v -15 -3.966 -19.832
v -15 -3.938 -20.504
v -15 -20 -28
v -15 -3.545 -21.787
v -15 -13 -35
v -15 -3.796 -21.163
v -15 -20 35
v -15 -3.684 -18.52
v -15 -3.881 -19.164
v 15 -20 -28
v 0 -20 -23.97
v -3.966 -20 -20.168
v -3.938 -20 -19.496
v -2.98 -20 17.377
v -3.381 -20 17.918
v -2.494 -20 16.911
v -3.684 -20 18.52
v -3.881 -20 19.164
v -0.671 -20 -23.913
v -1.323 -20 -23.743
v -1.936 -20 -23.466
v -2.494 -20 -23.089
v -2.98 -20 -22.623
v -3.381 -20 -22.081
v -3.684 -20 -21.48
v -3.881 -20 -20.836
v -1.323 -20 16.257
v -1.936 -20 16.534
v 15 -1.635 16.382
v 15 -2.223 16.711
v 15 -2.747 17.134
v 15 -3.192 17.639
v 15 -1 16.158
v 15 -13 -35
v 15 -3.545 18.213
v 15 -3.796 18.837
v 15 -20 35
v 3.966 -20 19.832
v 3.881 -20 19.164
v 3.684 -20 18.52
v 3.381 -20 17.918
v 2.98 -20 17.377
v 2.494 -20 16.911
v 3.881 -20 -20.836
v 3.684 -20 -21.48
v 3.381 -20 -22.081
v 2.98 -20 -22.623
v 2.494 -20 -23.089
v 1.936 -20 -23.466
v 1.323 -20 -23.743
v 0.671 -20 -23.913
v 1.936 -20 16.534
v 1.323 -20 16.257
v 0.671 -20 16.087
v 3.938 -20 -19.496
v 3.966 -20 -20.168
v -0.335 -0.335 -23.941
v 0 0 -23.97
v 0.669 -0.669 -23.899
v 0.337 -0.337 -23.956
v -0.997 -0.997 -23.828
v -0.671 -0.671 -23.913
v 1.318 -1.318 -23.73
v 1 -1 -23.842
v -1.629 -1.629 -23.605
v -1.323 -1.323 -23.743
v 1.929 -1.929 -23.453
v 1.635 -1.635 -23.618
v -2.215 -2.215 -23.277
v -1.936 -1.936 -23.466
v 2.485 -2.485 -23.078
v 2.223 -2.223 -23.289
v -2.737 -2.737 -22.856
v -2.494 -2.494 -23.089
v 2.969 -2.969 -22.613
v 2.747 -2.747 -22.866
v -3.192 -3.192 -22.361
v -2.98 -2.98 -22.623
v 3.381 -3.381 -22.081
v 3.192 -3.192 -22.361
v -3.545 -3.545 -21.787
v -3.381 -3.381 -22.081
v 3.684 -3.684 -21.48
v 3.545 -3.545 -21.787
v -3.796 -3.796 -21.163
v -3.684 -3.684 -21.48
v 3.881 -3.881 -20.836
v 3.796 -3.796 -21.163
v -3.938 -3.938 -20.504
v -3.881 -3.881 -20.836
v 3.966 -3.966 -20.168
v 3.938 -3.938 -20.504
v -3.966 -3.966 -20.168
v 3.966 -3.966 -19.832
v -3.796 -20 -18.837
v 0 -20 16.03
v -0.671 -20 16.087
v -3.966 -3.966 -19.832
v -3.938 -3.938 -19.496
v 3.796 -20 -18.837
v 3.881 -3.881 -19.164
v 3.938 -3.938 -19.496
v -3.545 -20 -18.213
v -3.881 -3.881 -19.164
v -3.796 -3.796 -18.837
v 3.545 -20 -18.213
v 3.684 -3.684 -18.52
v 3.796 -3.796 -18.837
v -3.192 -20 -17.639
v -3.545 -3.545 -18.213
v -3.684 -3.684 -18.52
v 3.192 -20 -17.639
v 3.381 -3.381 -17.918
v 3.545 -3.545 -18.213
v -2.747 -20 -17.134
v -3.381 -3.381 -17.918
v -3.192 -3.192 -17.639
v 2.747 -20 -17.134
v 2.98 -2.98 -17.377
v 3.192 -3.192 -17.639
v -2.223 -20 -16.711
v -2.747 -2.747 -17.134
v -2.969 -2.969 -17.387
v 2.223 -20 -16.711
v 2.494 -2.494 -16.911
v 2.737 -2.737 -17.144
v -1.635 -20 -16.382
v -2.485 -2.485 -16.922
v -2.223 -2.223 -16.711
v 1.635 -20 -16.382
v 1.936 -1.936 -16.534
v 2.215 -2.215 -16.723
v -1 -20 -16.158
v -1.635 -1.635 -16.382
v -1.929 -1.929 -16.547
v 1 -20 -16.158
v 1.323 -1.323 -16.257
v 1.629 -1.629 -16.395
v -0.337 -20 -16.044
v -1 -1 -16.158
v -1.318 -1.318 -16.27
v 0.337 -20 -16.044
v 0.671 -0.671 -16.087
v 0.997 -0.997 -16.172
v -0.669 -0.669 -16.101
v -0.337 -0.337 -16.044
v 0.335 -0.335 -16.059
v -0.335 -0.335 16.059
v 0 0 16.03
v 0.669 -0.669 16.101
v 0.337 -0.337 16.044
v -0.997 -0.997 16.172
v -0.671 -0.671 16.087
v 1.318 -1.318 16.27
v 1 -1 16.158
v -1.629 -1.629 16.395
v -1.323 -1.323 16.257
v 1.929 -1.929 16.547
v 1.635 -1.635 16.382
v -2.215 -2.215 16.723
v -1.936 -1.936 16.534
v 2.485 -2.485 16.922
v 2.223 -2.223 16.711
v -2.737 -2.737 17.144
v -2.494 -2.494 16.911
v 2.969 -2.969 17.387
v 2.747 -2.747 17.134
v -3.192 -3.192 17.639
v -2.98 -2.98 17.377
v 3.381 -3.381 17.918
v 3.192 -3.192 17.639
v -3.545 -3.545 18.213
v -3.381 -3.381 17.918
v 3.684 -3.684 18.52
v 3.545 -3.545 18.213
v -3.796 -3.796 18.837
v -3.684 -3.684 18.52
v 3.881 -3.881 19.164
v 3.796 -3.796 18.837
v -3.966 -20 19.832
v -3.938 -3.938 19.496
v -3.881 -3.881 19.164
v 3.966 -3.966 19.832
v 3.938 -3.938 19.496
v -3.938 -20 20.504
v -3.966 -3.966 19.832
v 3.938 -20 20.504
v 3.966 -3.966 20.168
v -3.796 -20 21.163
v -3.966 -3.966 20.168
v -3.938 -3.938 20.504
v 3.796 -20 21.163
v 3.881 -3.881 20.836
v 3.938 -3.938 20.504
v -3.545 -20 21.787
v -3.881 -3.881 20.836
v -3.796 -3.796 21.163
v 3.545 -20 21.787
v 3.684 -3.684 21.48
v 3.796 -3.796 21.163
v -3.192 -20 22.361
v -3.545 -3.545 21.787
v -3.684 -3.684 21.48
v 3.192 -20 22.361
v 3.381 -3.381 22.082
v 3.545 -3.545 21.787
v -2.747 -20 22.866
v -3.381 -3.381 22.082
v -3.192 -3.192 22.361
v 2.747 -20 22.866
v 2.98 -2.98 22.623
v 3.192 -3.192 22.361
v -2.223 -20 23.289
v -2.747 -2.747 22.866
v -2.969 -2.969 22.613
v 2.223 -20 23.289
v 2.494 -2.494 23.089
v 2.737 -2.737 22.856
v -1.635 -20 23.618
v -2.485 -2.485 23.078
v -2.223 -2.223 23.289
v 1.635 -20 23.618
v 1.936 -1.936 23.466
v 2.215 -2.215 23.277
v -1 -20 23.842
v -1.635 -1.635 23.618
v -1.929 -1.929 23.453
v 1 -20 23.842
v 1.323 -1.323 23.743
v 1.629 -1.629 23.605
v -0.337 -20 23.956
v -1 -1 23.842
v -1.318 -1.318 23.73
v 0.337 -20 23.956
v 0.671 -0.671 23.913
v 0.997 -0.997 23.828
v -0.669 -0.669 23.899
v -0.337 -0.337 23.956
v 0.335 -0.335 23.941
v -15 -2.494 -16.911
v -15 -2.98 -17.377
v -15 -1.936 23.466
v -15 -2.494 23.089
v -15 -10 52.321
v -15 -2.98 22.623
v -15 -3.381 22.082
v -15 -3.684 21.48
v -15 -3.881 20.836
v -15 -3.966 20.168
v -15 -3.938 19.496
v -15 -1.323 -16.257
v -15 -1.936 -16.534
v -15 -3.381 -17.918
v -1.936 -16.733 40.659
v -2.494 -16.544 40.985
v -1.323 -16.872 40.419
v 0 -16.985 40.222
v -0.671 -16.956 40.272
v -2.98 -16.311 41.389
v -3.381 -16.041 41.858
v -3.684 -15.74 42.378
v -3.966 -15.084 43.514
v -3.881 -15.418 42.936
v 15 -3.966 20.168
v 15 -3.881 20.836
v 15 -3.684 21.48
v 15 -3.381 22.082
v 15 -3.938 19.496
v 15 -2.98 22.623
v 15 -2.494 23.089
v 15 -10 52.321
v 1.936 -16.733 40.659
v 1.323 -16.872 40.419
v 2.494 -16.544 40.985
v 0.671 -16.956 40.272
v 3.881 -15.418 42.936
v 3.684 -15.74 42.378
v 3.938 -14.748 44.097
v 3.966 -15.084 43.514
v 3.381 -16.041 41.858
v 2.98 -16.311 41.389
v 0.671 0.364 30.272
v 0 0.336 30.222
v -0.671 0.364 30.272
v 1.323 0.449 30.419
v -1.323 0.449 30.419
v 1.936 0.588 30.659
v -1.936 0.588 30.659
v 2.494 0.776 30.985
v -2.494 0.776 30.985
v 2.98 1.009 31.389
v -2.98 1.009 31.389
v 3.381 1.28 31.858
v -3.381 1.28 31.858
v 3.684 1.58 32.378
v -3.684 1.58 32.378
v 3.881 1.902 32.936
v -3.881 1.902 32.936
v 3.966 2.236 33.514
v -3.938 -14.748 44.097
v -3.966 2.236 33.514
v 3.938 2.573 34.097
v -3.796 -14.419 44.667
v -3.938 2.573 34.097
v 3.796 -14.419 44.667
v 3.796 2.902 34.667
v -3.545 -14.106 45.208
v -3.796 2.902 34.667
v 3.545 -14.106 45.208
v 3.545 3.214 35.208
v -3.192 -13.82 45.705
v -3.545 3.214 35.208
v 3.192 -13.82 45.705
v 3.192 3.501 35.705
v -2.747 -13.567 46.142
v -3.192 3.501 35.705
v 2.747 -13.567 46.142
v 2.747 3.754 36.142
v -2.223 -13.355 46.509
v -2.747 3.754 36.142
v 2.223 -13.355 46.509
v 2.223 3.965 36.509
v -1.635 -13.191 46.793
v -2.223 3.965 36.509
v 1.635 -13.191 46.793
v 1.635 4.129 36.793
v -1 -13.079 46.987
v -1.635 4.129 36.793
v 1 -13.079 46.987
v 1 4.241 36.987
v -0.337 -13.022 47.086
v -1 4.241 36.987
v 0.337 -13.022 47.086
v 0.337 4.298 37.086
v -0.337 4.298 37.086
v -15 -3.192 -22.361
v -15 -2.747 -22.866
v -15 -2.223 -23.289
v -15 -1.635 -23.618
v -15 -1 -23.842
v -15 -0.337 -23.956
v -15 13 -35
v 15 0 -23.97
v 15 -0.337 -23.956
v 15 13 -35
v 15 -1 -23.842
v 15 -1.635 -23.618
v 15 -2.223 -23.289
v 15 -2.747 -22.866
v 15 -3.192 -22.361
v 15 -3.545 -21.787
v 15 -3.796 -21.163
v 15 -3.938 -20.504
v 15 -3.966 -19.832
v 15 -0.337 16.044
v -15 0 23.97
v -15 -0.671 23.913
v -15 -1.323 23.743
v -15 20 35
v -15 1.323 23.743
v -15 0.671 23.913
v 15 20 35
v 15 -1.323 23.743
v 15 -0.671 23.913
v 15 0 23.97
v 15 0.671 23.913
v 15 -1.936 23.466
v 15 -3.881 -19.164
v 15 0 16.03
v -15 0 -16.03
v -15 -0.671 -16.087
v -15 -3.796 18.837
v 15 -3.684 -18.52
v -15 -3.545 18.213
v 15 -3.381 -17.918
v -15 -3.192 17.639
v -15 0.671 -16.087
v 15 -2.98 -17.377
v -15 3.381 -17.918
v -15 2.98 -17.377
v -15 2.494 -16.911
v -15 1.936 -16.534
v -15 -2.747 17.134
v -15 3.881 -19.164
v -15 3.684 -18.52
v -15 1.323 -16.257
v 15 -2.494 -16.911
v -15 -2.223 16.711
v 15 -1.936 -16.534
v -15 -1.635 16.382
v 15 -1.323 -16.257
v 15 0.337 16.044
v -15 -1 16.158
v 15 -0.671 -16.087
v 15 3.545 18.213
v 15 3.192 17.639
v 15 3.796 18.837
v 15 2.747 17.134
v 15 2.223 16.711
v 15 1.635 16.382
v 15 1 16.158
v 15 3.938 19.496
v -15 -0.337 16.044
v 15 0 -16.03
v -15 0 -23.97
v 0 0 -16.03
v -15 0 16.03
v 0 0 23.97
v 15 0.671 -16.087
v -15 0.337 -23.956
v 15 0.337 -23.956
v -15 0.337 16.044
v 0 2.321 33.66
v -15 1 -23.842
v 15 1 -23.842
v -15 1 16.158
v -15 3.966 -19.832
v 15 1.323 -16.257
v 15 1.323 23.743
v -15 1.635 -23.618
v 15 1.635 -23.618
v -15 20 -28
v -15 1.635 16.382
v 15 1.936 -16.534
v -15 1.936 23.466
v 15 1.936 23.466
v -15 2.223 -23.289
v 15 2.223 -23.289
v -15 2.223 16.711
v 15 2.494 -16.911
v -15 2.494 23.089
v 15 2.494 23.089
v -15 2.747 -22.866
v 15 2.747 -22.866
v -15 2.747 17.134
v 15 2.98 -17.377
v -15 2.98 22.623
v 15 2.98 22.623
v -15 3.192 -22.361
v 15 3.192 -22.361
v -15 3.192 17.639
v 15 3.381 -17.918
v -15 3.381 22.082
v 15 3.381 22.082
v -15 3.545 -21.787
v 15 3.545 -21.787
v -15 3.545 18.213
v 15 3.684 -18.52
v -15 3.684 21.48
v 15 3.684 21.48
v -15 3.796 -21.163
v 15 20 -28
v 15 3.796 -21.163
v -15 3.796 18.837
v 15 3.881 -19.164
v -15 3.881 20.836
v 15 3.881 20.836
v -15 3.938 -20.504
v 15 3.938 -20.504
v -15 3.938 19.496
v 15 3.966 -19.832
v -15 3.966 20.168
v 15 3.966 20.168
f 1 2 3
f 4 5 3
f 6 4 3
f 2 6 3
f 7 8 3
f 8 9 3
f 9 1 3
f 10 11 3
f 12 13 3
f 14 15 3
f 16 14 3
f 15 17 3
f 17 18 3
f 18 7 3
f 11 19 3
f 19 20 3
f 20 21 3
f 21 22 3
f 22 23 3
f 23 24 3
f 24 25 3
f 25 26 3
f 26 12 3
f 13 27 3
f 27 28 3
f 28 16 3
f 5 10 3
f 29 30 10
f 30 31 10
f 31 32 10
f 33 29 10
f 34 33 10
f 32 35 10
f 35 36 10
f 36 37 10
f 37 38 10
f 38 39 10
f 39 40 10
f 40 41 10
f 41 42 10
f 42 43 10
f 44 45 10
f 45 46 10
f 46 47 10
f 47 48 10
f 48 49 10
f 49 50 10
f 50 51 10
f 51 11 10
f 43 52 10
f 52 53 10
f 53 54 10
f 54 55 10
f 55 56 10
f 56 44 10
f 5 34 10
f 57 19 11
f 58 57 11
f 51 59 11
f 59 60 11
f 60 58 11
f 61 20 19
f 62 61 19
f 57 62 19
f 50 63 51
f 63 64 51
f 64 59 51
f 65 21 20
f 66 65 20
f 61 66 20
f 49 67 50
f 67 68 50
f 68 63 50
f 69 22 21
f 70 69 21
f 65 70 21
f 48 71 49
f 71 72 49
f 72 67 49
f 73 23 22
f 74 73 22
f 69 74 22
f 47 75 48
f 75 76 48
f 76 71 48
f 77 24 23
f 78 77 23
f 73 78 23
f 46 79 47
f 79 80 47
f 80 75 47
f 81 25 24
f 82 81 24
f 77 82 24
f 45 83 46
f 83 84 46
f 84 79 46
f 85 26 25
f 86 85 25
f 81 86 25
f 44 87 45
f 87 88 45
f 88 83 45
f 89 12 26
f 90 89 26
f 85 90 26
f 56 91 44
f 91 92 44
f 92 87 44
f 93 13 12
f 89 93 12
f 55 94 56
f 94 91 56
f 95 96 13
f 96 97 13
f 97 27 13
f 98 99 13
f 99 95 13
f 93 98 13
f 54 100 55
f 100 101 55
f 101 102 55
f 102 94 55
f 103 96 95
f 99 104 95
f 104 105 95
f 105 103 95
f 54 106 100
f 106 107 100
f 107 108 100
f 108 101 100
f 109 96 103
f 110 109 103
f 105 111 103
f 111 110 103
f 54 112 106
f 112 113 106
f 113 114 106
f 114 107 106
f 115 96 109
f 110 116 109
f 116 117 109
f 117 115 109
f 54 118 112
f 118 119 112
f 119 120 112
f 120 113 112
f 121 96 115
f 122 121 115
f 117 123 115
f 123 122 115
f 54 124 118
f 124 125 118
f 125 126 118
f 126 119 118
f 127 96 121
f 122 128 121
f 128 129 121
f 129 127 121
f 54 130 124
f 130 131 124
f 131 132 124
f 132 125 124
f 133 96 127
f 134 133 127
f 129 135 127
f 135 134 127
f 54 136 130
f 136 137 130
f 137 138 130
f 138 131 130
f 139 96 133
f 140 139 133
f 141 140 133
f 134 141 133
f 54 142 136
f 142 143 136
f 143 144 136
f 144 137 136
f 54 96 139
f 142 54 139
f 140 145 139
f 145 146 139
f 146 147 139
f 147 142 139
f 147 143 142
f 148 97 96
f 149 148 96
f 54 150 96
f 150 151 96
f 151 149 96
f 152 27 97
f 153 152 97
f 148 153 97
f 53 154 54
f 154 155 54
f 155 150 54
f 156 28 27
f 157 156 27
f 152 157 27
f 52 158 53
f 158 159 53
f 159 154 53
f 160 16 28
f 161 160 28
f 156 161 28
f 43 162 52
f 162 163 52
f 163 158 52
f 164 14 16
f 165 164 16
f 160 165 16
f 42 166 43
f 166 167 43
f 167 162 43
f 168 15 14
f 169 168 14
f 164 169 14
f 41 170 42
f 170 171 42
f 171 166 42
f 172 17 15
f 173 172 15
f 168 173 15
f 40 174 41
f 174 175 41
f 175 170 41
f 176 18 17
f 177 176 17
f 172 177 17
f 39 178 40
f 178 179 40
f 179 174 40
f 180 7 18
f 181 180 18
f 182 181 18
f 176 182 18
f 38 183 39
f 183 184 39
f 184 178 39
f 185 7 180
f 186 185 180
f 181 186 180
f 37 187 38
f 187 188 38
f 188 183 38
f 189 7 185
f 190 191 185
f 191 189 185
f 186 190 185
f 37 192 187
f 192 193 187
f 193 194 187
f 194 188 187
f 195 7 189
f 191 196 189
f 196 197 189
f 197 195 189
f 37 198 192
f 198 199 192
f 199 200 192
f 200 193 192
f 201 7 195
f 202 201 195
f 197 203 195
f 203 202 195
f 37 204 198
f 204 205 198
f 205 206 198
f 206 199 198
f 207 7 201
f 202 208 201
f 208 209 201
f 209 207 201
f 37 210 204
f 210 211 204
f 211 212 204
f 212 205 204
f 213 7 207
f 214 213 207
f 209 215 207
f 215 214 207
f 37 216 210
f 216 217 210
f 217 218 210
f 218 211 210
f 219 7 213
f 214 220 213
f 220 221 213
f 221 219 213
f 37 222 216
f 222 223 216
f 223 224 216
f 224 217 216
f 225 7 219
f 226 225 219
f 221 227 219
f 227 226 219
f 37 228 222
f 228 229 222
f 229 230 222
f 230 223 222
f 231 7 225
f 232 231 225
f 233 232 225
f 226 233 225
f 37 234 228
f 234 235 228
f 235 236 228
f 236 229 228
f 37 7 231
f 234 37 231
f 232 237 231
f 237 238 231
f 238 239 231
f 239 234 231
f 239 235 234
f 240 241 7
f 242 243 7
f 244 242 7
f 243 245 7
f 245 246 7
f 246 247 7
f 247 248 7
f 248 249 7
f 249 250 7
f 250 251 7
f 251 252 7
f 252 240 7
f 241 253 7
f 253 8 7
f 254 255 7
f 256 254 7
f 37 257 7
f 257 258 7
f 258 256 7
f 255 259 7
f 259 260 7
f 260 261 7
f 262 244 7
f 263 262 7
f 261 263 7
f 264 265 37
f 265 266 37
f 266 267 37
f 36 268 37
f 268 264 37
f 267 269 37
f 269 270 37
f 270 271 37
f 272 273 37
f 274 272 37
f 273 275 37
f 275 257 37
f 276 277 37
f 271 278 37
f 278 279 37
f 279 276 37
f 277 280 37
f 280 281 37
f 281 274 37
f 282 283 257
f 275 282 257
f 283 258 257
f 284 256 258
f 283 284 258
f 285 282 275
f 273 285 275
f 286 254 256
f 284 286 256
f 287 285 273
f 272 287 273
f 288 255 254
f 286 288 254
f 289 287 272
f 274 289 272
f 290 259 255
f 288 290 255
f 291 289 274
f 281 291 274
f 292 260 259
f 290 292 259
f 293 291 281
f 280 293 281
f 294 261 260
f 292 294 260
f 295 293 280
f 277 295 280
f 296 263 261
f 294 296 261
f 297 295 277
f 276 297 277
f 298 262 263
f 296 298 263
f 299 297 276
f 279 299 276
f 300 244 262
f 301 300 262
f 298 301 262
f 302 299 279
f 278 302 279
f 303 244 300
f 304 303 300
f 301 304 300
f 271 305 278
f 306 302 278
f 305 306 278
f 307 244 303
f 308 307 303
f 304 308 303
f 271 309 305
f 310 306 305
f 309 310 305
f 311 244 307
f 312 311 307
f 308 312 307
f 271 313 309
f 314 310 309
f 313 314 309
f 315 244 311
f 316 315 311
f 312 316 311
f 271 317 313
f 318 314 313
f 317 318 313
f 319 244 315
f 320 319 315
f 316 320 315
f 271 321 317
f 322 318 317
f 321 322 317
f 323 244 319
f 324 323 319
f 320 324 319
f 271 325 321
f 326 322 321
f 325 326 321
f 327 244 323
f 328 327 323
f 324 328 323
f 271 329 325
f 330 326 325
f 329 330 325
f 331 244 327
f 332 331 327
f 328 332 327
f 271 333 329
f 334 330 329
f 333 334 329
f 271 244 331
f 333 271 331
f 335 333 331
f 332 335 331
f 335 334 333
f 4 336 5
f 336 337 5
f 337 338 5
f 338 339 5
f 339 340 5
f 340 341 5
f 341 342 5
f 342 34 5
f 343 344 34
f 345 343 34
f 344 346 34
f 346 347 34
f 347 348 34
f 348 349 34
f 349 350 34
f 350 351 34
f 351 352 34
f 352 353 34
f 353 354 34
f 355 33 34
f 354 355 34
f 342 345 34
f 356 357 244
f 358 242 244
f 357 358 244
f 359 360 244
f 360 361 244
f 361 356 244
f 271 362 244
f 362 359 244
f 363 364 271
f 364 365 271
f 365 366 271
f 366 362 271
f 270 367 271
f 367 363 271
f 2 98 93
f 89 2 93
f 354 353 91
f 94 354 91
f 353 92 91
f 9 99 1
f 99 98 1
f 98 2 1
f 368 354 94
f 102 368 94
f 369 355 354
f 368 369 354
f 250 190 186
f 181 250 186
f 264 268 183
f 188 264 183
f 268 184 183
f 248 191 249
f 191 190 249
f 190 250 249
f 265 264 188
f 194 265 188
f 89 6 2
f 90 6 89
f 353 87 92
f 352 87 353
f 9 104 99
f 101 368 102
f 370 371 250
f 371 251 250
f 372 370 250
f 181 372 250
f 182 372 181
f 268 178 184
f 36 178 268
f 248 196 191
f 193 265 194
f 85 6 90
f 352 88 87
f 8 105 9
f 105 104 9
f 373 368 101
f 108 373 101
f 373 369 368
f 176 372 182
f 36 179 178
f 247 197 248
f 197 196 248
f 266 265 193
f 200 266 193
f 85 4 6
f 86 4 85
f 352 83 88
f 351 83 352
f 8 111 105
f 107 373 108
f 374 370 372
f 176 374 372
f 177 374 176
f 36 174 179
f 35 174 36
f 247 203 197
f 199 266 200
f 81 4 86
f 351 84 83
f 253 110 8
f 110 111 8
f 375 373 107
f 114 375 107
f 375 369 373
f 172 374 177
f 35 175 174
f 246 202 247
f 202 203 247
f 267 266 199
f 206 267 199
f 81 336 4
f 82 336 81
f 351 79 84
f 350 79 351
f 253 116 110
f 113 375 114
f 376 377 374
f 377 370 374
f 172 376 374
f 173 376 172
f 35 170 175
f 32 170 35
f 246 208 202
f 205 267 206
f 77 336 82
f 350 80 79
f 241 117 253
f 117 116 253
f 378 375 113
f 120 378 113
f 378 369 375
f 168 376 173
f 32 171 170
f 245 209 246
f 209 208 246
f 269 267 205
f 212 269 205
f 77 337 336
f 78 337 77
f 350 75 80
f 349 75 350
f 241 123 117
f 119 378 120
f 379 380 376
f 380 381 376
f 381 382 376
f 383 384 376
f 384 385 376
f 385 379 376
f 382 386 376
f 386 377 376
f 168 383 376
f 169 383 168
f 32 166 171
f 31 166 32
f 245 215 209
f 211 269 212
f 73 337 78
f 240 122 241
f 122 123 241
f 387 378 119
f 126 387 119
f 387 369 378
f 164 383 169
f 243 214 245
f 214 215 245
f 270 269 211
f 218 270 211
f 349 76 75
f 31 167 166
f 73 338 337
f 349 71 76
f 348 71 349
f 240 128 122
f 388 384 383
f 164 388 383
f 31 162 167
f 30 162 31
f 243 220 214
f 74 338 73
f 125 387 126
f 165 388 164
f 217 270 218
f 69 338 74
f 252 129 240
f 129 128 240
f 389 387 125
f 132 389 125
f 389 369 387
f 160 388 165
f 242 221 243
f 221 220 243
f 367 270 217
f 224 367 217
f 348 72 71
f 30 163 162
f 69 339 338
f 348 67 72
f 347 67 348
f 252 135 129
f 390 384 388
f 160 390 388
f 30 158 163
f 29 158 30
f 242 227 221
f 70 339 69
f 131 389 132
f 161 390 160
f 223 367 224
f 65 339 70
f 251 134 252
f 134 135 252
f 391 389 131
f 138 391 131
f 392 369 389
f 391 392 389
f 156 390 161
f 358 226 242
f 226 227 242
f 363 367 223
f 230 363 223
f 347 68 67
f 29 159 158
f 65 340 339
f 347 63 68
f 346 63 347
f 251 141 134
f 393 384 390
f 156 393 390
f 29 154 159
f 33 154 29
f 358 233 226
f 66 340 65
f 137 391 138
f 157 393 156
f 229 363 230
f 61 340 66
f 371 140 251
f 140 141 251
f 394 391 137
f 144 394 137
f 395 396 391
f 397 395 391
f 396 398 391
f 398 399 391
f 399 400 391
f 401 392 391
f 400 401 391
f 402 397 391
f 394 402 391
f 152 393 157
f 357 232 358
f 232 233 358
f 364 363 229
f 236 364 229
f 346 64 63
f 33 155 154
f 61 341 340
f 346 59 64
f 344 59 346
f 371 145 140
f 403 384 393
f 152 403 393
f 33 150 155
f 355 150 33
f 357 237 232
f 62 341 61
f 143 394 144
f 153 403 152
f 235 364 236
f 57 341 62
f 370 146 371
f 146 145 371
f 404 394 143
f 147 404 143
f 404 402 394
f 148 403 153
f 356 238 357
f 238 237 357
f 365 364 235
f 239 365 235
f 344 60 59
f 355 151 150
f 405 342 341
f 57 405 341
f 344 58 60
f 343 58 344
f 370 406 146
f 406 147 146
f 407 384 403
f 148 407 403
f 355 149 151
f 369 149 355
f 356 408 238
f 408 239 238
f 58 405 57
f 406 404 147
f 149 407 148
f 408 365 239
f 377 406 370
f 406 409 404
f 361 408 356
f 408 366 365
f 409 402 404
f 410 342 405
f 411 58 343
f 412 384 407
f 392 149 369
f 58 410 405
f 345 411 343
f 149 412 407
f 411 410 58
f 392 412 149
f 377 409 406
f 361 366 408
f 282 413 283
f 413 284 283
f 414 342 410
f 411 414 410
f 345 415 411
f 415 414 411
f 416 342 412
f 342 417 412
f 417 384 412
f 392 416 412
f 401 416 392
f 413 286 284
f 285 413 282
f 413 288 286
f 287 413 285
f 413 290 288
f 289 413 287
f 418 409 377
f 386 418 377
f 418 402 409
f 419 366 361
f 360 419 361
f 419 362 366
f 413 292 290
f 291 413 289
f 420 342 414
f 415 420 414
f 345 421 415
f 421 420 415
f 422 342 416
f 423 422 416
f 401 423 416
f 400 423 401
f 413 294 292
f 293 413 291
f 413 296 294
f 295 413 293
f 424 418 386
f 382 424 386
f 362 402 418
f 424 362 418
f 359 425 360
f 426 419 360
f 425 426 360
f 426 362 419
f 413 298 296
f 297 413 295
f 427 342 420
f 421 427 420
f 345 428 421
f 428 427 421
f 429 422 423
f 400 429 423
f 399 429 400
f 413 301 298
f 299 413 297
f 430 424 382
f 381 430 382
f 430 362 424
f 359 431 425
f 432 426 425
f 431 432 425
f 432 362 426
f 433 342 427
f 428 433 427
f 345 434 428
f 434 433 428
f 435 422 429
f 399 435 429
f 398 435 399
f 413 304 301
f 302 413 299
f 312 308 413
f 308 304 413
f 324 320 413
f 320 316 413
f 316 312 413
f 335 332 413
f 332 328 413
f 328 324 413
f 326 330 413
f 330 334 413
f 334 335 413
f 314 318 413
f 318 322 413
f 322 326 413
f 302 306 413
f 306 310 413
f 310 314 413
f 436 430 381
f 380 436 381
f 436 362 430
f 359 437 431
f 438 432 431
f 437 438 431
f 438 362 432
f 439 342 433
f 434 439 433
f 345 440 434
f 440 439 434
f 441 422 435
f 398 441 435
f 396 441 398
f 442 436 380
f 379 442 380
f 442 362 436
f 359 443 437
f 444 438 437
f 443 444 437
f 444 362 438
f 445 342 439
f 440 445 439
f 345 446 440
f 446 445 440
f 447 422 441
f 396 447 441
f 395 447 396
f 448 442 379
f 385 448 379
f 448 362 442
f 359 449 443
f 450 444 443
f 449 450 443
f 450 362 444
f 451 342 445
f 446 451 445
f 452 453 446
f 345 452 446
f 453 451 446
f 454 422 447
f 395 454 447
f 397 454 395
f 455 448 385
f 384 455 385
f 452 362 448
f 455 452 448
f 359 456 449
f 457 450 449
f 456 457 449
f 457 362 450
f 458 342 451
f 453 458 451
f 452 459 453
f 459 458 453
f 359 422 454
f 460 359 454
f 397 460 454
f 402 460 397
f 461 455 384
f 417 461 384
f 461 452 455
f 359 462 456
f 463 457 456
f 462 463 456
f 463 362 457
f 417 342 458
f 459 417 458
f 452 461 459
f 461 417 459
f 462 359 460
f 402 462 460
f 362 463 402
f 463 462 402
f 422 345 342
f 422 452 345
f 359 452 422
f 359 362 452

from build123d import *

# Parameters (mm, degrees)
ESBO_O1_R                = 3.97
RESSALTO_EXTRUS_O1_DEPTH = 15
ESBO_O2_R                = 3.97
CORTE_EXTRUS_O2_DEPTH    = 20
CHANFRO1_SIZE            = 7
ESBO_O4_R                = 3.97
CORTE_EXTRUS_O4_DEPTH    = 20


with BuildPart() as part:
    # Esboço1 → Ressalto-extrusão1 (new body, symmetric)
    with BuildSketch(Plane(origin=(0, 0, 0), x_dir=(0, 0, -1), z_dir=(1, 0, 0))):
        Polygon((35, 20), (-35, 20), (-52.320508076, -10), (-35, -20), (35, -20), align=None)
        with Locations((-20, 0)):
            Circle(ESBO_O1_R, mode=Mode.SUBTRACT)
        with Locations((20, 0)):
            Circle(ESBO_O1_R, mode=Mode.SUBTRACT)
    extrude(amount=RESSALTO_EXTRUS_O1_DEPTH, both=True)

    # Esboço2 → Corte-extrusão2 (cut)
    with BuildSketch(Plane.XZ.offset(20)):
        with Locations((0, 20)):
            Circle(ESBO_O2_R)
        with Locations((0, -20)):
            Circle(ESBO_O2_R)
    extrude(amount=-CORTE_EXTRUS_O2_DEPTH, mode=Mode.SUBTRACT)

    # Chanfro1
    chanfro1_edges = [part.edges().sort_by_distance(p)[0] for p in [
        (0, 20, -35),
        (0, -20, -35),
    ]]
    chamfer(chanfro1_edges, length=CHANFRO1_SIZE)

    # Esboço4 → Corte-extrusão4 (cut)
    with BuildSketch(Plane(origin=(0, -30.155444566, 17.410254038), x_dir=(1, 0, 0), z_dir=(0, -0.866025404, 0.5))):
        with Locations((0, 30.310889132)):
            Circle(ESBO_O4_R)
    extrude(amount=-CORTE_EXTRUS_O4_DEPTH, mode=Mode.SUBTRACT)


solid = part.part
